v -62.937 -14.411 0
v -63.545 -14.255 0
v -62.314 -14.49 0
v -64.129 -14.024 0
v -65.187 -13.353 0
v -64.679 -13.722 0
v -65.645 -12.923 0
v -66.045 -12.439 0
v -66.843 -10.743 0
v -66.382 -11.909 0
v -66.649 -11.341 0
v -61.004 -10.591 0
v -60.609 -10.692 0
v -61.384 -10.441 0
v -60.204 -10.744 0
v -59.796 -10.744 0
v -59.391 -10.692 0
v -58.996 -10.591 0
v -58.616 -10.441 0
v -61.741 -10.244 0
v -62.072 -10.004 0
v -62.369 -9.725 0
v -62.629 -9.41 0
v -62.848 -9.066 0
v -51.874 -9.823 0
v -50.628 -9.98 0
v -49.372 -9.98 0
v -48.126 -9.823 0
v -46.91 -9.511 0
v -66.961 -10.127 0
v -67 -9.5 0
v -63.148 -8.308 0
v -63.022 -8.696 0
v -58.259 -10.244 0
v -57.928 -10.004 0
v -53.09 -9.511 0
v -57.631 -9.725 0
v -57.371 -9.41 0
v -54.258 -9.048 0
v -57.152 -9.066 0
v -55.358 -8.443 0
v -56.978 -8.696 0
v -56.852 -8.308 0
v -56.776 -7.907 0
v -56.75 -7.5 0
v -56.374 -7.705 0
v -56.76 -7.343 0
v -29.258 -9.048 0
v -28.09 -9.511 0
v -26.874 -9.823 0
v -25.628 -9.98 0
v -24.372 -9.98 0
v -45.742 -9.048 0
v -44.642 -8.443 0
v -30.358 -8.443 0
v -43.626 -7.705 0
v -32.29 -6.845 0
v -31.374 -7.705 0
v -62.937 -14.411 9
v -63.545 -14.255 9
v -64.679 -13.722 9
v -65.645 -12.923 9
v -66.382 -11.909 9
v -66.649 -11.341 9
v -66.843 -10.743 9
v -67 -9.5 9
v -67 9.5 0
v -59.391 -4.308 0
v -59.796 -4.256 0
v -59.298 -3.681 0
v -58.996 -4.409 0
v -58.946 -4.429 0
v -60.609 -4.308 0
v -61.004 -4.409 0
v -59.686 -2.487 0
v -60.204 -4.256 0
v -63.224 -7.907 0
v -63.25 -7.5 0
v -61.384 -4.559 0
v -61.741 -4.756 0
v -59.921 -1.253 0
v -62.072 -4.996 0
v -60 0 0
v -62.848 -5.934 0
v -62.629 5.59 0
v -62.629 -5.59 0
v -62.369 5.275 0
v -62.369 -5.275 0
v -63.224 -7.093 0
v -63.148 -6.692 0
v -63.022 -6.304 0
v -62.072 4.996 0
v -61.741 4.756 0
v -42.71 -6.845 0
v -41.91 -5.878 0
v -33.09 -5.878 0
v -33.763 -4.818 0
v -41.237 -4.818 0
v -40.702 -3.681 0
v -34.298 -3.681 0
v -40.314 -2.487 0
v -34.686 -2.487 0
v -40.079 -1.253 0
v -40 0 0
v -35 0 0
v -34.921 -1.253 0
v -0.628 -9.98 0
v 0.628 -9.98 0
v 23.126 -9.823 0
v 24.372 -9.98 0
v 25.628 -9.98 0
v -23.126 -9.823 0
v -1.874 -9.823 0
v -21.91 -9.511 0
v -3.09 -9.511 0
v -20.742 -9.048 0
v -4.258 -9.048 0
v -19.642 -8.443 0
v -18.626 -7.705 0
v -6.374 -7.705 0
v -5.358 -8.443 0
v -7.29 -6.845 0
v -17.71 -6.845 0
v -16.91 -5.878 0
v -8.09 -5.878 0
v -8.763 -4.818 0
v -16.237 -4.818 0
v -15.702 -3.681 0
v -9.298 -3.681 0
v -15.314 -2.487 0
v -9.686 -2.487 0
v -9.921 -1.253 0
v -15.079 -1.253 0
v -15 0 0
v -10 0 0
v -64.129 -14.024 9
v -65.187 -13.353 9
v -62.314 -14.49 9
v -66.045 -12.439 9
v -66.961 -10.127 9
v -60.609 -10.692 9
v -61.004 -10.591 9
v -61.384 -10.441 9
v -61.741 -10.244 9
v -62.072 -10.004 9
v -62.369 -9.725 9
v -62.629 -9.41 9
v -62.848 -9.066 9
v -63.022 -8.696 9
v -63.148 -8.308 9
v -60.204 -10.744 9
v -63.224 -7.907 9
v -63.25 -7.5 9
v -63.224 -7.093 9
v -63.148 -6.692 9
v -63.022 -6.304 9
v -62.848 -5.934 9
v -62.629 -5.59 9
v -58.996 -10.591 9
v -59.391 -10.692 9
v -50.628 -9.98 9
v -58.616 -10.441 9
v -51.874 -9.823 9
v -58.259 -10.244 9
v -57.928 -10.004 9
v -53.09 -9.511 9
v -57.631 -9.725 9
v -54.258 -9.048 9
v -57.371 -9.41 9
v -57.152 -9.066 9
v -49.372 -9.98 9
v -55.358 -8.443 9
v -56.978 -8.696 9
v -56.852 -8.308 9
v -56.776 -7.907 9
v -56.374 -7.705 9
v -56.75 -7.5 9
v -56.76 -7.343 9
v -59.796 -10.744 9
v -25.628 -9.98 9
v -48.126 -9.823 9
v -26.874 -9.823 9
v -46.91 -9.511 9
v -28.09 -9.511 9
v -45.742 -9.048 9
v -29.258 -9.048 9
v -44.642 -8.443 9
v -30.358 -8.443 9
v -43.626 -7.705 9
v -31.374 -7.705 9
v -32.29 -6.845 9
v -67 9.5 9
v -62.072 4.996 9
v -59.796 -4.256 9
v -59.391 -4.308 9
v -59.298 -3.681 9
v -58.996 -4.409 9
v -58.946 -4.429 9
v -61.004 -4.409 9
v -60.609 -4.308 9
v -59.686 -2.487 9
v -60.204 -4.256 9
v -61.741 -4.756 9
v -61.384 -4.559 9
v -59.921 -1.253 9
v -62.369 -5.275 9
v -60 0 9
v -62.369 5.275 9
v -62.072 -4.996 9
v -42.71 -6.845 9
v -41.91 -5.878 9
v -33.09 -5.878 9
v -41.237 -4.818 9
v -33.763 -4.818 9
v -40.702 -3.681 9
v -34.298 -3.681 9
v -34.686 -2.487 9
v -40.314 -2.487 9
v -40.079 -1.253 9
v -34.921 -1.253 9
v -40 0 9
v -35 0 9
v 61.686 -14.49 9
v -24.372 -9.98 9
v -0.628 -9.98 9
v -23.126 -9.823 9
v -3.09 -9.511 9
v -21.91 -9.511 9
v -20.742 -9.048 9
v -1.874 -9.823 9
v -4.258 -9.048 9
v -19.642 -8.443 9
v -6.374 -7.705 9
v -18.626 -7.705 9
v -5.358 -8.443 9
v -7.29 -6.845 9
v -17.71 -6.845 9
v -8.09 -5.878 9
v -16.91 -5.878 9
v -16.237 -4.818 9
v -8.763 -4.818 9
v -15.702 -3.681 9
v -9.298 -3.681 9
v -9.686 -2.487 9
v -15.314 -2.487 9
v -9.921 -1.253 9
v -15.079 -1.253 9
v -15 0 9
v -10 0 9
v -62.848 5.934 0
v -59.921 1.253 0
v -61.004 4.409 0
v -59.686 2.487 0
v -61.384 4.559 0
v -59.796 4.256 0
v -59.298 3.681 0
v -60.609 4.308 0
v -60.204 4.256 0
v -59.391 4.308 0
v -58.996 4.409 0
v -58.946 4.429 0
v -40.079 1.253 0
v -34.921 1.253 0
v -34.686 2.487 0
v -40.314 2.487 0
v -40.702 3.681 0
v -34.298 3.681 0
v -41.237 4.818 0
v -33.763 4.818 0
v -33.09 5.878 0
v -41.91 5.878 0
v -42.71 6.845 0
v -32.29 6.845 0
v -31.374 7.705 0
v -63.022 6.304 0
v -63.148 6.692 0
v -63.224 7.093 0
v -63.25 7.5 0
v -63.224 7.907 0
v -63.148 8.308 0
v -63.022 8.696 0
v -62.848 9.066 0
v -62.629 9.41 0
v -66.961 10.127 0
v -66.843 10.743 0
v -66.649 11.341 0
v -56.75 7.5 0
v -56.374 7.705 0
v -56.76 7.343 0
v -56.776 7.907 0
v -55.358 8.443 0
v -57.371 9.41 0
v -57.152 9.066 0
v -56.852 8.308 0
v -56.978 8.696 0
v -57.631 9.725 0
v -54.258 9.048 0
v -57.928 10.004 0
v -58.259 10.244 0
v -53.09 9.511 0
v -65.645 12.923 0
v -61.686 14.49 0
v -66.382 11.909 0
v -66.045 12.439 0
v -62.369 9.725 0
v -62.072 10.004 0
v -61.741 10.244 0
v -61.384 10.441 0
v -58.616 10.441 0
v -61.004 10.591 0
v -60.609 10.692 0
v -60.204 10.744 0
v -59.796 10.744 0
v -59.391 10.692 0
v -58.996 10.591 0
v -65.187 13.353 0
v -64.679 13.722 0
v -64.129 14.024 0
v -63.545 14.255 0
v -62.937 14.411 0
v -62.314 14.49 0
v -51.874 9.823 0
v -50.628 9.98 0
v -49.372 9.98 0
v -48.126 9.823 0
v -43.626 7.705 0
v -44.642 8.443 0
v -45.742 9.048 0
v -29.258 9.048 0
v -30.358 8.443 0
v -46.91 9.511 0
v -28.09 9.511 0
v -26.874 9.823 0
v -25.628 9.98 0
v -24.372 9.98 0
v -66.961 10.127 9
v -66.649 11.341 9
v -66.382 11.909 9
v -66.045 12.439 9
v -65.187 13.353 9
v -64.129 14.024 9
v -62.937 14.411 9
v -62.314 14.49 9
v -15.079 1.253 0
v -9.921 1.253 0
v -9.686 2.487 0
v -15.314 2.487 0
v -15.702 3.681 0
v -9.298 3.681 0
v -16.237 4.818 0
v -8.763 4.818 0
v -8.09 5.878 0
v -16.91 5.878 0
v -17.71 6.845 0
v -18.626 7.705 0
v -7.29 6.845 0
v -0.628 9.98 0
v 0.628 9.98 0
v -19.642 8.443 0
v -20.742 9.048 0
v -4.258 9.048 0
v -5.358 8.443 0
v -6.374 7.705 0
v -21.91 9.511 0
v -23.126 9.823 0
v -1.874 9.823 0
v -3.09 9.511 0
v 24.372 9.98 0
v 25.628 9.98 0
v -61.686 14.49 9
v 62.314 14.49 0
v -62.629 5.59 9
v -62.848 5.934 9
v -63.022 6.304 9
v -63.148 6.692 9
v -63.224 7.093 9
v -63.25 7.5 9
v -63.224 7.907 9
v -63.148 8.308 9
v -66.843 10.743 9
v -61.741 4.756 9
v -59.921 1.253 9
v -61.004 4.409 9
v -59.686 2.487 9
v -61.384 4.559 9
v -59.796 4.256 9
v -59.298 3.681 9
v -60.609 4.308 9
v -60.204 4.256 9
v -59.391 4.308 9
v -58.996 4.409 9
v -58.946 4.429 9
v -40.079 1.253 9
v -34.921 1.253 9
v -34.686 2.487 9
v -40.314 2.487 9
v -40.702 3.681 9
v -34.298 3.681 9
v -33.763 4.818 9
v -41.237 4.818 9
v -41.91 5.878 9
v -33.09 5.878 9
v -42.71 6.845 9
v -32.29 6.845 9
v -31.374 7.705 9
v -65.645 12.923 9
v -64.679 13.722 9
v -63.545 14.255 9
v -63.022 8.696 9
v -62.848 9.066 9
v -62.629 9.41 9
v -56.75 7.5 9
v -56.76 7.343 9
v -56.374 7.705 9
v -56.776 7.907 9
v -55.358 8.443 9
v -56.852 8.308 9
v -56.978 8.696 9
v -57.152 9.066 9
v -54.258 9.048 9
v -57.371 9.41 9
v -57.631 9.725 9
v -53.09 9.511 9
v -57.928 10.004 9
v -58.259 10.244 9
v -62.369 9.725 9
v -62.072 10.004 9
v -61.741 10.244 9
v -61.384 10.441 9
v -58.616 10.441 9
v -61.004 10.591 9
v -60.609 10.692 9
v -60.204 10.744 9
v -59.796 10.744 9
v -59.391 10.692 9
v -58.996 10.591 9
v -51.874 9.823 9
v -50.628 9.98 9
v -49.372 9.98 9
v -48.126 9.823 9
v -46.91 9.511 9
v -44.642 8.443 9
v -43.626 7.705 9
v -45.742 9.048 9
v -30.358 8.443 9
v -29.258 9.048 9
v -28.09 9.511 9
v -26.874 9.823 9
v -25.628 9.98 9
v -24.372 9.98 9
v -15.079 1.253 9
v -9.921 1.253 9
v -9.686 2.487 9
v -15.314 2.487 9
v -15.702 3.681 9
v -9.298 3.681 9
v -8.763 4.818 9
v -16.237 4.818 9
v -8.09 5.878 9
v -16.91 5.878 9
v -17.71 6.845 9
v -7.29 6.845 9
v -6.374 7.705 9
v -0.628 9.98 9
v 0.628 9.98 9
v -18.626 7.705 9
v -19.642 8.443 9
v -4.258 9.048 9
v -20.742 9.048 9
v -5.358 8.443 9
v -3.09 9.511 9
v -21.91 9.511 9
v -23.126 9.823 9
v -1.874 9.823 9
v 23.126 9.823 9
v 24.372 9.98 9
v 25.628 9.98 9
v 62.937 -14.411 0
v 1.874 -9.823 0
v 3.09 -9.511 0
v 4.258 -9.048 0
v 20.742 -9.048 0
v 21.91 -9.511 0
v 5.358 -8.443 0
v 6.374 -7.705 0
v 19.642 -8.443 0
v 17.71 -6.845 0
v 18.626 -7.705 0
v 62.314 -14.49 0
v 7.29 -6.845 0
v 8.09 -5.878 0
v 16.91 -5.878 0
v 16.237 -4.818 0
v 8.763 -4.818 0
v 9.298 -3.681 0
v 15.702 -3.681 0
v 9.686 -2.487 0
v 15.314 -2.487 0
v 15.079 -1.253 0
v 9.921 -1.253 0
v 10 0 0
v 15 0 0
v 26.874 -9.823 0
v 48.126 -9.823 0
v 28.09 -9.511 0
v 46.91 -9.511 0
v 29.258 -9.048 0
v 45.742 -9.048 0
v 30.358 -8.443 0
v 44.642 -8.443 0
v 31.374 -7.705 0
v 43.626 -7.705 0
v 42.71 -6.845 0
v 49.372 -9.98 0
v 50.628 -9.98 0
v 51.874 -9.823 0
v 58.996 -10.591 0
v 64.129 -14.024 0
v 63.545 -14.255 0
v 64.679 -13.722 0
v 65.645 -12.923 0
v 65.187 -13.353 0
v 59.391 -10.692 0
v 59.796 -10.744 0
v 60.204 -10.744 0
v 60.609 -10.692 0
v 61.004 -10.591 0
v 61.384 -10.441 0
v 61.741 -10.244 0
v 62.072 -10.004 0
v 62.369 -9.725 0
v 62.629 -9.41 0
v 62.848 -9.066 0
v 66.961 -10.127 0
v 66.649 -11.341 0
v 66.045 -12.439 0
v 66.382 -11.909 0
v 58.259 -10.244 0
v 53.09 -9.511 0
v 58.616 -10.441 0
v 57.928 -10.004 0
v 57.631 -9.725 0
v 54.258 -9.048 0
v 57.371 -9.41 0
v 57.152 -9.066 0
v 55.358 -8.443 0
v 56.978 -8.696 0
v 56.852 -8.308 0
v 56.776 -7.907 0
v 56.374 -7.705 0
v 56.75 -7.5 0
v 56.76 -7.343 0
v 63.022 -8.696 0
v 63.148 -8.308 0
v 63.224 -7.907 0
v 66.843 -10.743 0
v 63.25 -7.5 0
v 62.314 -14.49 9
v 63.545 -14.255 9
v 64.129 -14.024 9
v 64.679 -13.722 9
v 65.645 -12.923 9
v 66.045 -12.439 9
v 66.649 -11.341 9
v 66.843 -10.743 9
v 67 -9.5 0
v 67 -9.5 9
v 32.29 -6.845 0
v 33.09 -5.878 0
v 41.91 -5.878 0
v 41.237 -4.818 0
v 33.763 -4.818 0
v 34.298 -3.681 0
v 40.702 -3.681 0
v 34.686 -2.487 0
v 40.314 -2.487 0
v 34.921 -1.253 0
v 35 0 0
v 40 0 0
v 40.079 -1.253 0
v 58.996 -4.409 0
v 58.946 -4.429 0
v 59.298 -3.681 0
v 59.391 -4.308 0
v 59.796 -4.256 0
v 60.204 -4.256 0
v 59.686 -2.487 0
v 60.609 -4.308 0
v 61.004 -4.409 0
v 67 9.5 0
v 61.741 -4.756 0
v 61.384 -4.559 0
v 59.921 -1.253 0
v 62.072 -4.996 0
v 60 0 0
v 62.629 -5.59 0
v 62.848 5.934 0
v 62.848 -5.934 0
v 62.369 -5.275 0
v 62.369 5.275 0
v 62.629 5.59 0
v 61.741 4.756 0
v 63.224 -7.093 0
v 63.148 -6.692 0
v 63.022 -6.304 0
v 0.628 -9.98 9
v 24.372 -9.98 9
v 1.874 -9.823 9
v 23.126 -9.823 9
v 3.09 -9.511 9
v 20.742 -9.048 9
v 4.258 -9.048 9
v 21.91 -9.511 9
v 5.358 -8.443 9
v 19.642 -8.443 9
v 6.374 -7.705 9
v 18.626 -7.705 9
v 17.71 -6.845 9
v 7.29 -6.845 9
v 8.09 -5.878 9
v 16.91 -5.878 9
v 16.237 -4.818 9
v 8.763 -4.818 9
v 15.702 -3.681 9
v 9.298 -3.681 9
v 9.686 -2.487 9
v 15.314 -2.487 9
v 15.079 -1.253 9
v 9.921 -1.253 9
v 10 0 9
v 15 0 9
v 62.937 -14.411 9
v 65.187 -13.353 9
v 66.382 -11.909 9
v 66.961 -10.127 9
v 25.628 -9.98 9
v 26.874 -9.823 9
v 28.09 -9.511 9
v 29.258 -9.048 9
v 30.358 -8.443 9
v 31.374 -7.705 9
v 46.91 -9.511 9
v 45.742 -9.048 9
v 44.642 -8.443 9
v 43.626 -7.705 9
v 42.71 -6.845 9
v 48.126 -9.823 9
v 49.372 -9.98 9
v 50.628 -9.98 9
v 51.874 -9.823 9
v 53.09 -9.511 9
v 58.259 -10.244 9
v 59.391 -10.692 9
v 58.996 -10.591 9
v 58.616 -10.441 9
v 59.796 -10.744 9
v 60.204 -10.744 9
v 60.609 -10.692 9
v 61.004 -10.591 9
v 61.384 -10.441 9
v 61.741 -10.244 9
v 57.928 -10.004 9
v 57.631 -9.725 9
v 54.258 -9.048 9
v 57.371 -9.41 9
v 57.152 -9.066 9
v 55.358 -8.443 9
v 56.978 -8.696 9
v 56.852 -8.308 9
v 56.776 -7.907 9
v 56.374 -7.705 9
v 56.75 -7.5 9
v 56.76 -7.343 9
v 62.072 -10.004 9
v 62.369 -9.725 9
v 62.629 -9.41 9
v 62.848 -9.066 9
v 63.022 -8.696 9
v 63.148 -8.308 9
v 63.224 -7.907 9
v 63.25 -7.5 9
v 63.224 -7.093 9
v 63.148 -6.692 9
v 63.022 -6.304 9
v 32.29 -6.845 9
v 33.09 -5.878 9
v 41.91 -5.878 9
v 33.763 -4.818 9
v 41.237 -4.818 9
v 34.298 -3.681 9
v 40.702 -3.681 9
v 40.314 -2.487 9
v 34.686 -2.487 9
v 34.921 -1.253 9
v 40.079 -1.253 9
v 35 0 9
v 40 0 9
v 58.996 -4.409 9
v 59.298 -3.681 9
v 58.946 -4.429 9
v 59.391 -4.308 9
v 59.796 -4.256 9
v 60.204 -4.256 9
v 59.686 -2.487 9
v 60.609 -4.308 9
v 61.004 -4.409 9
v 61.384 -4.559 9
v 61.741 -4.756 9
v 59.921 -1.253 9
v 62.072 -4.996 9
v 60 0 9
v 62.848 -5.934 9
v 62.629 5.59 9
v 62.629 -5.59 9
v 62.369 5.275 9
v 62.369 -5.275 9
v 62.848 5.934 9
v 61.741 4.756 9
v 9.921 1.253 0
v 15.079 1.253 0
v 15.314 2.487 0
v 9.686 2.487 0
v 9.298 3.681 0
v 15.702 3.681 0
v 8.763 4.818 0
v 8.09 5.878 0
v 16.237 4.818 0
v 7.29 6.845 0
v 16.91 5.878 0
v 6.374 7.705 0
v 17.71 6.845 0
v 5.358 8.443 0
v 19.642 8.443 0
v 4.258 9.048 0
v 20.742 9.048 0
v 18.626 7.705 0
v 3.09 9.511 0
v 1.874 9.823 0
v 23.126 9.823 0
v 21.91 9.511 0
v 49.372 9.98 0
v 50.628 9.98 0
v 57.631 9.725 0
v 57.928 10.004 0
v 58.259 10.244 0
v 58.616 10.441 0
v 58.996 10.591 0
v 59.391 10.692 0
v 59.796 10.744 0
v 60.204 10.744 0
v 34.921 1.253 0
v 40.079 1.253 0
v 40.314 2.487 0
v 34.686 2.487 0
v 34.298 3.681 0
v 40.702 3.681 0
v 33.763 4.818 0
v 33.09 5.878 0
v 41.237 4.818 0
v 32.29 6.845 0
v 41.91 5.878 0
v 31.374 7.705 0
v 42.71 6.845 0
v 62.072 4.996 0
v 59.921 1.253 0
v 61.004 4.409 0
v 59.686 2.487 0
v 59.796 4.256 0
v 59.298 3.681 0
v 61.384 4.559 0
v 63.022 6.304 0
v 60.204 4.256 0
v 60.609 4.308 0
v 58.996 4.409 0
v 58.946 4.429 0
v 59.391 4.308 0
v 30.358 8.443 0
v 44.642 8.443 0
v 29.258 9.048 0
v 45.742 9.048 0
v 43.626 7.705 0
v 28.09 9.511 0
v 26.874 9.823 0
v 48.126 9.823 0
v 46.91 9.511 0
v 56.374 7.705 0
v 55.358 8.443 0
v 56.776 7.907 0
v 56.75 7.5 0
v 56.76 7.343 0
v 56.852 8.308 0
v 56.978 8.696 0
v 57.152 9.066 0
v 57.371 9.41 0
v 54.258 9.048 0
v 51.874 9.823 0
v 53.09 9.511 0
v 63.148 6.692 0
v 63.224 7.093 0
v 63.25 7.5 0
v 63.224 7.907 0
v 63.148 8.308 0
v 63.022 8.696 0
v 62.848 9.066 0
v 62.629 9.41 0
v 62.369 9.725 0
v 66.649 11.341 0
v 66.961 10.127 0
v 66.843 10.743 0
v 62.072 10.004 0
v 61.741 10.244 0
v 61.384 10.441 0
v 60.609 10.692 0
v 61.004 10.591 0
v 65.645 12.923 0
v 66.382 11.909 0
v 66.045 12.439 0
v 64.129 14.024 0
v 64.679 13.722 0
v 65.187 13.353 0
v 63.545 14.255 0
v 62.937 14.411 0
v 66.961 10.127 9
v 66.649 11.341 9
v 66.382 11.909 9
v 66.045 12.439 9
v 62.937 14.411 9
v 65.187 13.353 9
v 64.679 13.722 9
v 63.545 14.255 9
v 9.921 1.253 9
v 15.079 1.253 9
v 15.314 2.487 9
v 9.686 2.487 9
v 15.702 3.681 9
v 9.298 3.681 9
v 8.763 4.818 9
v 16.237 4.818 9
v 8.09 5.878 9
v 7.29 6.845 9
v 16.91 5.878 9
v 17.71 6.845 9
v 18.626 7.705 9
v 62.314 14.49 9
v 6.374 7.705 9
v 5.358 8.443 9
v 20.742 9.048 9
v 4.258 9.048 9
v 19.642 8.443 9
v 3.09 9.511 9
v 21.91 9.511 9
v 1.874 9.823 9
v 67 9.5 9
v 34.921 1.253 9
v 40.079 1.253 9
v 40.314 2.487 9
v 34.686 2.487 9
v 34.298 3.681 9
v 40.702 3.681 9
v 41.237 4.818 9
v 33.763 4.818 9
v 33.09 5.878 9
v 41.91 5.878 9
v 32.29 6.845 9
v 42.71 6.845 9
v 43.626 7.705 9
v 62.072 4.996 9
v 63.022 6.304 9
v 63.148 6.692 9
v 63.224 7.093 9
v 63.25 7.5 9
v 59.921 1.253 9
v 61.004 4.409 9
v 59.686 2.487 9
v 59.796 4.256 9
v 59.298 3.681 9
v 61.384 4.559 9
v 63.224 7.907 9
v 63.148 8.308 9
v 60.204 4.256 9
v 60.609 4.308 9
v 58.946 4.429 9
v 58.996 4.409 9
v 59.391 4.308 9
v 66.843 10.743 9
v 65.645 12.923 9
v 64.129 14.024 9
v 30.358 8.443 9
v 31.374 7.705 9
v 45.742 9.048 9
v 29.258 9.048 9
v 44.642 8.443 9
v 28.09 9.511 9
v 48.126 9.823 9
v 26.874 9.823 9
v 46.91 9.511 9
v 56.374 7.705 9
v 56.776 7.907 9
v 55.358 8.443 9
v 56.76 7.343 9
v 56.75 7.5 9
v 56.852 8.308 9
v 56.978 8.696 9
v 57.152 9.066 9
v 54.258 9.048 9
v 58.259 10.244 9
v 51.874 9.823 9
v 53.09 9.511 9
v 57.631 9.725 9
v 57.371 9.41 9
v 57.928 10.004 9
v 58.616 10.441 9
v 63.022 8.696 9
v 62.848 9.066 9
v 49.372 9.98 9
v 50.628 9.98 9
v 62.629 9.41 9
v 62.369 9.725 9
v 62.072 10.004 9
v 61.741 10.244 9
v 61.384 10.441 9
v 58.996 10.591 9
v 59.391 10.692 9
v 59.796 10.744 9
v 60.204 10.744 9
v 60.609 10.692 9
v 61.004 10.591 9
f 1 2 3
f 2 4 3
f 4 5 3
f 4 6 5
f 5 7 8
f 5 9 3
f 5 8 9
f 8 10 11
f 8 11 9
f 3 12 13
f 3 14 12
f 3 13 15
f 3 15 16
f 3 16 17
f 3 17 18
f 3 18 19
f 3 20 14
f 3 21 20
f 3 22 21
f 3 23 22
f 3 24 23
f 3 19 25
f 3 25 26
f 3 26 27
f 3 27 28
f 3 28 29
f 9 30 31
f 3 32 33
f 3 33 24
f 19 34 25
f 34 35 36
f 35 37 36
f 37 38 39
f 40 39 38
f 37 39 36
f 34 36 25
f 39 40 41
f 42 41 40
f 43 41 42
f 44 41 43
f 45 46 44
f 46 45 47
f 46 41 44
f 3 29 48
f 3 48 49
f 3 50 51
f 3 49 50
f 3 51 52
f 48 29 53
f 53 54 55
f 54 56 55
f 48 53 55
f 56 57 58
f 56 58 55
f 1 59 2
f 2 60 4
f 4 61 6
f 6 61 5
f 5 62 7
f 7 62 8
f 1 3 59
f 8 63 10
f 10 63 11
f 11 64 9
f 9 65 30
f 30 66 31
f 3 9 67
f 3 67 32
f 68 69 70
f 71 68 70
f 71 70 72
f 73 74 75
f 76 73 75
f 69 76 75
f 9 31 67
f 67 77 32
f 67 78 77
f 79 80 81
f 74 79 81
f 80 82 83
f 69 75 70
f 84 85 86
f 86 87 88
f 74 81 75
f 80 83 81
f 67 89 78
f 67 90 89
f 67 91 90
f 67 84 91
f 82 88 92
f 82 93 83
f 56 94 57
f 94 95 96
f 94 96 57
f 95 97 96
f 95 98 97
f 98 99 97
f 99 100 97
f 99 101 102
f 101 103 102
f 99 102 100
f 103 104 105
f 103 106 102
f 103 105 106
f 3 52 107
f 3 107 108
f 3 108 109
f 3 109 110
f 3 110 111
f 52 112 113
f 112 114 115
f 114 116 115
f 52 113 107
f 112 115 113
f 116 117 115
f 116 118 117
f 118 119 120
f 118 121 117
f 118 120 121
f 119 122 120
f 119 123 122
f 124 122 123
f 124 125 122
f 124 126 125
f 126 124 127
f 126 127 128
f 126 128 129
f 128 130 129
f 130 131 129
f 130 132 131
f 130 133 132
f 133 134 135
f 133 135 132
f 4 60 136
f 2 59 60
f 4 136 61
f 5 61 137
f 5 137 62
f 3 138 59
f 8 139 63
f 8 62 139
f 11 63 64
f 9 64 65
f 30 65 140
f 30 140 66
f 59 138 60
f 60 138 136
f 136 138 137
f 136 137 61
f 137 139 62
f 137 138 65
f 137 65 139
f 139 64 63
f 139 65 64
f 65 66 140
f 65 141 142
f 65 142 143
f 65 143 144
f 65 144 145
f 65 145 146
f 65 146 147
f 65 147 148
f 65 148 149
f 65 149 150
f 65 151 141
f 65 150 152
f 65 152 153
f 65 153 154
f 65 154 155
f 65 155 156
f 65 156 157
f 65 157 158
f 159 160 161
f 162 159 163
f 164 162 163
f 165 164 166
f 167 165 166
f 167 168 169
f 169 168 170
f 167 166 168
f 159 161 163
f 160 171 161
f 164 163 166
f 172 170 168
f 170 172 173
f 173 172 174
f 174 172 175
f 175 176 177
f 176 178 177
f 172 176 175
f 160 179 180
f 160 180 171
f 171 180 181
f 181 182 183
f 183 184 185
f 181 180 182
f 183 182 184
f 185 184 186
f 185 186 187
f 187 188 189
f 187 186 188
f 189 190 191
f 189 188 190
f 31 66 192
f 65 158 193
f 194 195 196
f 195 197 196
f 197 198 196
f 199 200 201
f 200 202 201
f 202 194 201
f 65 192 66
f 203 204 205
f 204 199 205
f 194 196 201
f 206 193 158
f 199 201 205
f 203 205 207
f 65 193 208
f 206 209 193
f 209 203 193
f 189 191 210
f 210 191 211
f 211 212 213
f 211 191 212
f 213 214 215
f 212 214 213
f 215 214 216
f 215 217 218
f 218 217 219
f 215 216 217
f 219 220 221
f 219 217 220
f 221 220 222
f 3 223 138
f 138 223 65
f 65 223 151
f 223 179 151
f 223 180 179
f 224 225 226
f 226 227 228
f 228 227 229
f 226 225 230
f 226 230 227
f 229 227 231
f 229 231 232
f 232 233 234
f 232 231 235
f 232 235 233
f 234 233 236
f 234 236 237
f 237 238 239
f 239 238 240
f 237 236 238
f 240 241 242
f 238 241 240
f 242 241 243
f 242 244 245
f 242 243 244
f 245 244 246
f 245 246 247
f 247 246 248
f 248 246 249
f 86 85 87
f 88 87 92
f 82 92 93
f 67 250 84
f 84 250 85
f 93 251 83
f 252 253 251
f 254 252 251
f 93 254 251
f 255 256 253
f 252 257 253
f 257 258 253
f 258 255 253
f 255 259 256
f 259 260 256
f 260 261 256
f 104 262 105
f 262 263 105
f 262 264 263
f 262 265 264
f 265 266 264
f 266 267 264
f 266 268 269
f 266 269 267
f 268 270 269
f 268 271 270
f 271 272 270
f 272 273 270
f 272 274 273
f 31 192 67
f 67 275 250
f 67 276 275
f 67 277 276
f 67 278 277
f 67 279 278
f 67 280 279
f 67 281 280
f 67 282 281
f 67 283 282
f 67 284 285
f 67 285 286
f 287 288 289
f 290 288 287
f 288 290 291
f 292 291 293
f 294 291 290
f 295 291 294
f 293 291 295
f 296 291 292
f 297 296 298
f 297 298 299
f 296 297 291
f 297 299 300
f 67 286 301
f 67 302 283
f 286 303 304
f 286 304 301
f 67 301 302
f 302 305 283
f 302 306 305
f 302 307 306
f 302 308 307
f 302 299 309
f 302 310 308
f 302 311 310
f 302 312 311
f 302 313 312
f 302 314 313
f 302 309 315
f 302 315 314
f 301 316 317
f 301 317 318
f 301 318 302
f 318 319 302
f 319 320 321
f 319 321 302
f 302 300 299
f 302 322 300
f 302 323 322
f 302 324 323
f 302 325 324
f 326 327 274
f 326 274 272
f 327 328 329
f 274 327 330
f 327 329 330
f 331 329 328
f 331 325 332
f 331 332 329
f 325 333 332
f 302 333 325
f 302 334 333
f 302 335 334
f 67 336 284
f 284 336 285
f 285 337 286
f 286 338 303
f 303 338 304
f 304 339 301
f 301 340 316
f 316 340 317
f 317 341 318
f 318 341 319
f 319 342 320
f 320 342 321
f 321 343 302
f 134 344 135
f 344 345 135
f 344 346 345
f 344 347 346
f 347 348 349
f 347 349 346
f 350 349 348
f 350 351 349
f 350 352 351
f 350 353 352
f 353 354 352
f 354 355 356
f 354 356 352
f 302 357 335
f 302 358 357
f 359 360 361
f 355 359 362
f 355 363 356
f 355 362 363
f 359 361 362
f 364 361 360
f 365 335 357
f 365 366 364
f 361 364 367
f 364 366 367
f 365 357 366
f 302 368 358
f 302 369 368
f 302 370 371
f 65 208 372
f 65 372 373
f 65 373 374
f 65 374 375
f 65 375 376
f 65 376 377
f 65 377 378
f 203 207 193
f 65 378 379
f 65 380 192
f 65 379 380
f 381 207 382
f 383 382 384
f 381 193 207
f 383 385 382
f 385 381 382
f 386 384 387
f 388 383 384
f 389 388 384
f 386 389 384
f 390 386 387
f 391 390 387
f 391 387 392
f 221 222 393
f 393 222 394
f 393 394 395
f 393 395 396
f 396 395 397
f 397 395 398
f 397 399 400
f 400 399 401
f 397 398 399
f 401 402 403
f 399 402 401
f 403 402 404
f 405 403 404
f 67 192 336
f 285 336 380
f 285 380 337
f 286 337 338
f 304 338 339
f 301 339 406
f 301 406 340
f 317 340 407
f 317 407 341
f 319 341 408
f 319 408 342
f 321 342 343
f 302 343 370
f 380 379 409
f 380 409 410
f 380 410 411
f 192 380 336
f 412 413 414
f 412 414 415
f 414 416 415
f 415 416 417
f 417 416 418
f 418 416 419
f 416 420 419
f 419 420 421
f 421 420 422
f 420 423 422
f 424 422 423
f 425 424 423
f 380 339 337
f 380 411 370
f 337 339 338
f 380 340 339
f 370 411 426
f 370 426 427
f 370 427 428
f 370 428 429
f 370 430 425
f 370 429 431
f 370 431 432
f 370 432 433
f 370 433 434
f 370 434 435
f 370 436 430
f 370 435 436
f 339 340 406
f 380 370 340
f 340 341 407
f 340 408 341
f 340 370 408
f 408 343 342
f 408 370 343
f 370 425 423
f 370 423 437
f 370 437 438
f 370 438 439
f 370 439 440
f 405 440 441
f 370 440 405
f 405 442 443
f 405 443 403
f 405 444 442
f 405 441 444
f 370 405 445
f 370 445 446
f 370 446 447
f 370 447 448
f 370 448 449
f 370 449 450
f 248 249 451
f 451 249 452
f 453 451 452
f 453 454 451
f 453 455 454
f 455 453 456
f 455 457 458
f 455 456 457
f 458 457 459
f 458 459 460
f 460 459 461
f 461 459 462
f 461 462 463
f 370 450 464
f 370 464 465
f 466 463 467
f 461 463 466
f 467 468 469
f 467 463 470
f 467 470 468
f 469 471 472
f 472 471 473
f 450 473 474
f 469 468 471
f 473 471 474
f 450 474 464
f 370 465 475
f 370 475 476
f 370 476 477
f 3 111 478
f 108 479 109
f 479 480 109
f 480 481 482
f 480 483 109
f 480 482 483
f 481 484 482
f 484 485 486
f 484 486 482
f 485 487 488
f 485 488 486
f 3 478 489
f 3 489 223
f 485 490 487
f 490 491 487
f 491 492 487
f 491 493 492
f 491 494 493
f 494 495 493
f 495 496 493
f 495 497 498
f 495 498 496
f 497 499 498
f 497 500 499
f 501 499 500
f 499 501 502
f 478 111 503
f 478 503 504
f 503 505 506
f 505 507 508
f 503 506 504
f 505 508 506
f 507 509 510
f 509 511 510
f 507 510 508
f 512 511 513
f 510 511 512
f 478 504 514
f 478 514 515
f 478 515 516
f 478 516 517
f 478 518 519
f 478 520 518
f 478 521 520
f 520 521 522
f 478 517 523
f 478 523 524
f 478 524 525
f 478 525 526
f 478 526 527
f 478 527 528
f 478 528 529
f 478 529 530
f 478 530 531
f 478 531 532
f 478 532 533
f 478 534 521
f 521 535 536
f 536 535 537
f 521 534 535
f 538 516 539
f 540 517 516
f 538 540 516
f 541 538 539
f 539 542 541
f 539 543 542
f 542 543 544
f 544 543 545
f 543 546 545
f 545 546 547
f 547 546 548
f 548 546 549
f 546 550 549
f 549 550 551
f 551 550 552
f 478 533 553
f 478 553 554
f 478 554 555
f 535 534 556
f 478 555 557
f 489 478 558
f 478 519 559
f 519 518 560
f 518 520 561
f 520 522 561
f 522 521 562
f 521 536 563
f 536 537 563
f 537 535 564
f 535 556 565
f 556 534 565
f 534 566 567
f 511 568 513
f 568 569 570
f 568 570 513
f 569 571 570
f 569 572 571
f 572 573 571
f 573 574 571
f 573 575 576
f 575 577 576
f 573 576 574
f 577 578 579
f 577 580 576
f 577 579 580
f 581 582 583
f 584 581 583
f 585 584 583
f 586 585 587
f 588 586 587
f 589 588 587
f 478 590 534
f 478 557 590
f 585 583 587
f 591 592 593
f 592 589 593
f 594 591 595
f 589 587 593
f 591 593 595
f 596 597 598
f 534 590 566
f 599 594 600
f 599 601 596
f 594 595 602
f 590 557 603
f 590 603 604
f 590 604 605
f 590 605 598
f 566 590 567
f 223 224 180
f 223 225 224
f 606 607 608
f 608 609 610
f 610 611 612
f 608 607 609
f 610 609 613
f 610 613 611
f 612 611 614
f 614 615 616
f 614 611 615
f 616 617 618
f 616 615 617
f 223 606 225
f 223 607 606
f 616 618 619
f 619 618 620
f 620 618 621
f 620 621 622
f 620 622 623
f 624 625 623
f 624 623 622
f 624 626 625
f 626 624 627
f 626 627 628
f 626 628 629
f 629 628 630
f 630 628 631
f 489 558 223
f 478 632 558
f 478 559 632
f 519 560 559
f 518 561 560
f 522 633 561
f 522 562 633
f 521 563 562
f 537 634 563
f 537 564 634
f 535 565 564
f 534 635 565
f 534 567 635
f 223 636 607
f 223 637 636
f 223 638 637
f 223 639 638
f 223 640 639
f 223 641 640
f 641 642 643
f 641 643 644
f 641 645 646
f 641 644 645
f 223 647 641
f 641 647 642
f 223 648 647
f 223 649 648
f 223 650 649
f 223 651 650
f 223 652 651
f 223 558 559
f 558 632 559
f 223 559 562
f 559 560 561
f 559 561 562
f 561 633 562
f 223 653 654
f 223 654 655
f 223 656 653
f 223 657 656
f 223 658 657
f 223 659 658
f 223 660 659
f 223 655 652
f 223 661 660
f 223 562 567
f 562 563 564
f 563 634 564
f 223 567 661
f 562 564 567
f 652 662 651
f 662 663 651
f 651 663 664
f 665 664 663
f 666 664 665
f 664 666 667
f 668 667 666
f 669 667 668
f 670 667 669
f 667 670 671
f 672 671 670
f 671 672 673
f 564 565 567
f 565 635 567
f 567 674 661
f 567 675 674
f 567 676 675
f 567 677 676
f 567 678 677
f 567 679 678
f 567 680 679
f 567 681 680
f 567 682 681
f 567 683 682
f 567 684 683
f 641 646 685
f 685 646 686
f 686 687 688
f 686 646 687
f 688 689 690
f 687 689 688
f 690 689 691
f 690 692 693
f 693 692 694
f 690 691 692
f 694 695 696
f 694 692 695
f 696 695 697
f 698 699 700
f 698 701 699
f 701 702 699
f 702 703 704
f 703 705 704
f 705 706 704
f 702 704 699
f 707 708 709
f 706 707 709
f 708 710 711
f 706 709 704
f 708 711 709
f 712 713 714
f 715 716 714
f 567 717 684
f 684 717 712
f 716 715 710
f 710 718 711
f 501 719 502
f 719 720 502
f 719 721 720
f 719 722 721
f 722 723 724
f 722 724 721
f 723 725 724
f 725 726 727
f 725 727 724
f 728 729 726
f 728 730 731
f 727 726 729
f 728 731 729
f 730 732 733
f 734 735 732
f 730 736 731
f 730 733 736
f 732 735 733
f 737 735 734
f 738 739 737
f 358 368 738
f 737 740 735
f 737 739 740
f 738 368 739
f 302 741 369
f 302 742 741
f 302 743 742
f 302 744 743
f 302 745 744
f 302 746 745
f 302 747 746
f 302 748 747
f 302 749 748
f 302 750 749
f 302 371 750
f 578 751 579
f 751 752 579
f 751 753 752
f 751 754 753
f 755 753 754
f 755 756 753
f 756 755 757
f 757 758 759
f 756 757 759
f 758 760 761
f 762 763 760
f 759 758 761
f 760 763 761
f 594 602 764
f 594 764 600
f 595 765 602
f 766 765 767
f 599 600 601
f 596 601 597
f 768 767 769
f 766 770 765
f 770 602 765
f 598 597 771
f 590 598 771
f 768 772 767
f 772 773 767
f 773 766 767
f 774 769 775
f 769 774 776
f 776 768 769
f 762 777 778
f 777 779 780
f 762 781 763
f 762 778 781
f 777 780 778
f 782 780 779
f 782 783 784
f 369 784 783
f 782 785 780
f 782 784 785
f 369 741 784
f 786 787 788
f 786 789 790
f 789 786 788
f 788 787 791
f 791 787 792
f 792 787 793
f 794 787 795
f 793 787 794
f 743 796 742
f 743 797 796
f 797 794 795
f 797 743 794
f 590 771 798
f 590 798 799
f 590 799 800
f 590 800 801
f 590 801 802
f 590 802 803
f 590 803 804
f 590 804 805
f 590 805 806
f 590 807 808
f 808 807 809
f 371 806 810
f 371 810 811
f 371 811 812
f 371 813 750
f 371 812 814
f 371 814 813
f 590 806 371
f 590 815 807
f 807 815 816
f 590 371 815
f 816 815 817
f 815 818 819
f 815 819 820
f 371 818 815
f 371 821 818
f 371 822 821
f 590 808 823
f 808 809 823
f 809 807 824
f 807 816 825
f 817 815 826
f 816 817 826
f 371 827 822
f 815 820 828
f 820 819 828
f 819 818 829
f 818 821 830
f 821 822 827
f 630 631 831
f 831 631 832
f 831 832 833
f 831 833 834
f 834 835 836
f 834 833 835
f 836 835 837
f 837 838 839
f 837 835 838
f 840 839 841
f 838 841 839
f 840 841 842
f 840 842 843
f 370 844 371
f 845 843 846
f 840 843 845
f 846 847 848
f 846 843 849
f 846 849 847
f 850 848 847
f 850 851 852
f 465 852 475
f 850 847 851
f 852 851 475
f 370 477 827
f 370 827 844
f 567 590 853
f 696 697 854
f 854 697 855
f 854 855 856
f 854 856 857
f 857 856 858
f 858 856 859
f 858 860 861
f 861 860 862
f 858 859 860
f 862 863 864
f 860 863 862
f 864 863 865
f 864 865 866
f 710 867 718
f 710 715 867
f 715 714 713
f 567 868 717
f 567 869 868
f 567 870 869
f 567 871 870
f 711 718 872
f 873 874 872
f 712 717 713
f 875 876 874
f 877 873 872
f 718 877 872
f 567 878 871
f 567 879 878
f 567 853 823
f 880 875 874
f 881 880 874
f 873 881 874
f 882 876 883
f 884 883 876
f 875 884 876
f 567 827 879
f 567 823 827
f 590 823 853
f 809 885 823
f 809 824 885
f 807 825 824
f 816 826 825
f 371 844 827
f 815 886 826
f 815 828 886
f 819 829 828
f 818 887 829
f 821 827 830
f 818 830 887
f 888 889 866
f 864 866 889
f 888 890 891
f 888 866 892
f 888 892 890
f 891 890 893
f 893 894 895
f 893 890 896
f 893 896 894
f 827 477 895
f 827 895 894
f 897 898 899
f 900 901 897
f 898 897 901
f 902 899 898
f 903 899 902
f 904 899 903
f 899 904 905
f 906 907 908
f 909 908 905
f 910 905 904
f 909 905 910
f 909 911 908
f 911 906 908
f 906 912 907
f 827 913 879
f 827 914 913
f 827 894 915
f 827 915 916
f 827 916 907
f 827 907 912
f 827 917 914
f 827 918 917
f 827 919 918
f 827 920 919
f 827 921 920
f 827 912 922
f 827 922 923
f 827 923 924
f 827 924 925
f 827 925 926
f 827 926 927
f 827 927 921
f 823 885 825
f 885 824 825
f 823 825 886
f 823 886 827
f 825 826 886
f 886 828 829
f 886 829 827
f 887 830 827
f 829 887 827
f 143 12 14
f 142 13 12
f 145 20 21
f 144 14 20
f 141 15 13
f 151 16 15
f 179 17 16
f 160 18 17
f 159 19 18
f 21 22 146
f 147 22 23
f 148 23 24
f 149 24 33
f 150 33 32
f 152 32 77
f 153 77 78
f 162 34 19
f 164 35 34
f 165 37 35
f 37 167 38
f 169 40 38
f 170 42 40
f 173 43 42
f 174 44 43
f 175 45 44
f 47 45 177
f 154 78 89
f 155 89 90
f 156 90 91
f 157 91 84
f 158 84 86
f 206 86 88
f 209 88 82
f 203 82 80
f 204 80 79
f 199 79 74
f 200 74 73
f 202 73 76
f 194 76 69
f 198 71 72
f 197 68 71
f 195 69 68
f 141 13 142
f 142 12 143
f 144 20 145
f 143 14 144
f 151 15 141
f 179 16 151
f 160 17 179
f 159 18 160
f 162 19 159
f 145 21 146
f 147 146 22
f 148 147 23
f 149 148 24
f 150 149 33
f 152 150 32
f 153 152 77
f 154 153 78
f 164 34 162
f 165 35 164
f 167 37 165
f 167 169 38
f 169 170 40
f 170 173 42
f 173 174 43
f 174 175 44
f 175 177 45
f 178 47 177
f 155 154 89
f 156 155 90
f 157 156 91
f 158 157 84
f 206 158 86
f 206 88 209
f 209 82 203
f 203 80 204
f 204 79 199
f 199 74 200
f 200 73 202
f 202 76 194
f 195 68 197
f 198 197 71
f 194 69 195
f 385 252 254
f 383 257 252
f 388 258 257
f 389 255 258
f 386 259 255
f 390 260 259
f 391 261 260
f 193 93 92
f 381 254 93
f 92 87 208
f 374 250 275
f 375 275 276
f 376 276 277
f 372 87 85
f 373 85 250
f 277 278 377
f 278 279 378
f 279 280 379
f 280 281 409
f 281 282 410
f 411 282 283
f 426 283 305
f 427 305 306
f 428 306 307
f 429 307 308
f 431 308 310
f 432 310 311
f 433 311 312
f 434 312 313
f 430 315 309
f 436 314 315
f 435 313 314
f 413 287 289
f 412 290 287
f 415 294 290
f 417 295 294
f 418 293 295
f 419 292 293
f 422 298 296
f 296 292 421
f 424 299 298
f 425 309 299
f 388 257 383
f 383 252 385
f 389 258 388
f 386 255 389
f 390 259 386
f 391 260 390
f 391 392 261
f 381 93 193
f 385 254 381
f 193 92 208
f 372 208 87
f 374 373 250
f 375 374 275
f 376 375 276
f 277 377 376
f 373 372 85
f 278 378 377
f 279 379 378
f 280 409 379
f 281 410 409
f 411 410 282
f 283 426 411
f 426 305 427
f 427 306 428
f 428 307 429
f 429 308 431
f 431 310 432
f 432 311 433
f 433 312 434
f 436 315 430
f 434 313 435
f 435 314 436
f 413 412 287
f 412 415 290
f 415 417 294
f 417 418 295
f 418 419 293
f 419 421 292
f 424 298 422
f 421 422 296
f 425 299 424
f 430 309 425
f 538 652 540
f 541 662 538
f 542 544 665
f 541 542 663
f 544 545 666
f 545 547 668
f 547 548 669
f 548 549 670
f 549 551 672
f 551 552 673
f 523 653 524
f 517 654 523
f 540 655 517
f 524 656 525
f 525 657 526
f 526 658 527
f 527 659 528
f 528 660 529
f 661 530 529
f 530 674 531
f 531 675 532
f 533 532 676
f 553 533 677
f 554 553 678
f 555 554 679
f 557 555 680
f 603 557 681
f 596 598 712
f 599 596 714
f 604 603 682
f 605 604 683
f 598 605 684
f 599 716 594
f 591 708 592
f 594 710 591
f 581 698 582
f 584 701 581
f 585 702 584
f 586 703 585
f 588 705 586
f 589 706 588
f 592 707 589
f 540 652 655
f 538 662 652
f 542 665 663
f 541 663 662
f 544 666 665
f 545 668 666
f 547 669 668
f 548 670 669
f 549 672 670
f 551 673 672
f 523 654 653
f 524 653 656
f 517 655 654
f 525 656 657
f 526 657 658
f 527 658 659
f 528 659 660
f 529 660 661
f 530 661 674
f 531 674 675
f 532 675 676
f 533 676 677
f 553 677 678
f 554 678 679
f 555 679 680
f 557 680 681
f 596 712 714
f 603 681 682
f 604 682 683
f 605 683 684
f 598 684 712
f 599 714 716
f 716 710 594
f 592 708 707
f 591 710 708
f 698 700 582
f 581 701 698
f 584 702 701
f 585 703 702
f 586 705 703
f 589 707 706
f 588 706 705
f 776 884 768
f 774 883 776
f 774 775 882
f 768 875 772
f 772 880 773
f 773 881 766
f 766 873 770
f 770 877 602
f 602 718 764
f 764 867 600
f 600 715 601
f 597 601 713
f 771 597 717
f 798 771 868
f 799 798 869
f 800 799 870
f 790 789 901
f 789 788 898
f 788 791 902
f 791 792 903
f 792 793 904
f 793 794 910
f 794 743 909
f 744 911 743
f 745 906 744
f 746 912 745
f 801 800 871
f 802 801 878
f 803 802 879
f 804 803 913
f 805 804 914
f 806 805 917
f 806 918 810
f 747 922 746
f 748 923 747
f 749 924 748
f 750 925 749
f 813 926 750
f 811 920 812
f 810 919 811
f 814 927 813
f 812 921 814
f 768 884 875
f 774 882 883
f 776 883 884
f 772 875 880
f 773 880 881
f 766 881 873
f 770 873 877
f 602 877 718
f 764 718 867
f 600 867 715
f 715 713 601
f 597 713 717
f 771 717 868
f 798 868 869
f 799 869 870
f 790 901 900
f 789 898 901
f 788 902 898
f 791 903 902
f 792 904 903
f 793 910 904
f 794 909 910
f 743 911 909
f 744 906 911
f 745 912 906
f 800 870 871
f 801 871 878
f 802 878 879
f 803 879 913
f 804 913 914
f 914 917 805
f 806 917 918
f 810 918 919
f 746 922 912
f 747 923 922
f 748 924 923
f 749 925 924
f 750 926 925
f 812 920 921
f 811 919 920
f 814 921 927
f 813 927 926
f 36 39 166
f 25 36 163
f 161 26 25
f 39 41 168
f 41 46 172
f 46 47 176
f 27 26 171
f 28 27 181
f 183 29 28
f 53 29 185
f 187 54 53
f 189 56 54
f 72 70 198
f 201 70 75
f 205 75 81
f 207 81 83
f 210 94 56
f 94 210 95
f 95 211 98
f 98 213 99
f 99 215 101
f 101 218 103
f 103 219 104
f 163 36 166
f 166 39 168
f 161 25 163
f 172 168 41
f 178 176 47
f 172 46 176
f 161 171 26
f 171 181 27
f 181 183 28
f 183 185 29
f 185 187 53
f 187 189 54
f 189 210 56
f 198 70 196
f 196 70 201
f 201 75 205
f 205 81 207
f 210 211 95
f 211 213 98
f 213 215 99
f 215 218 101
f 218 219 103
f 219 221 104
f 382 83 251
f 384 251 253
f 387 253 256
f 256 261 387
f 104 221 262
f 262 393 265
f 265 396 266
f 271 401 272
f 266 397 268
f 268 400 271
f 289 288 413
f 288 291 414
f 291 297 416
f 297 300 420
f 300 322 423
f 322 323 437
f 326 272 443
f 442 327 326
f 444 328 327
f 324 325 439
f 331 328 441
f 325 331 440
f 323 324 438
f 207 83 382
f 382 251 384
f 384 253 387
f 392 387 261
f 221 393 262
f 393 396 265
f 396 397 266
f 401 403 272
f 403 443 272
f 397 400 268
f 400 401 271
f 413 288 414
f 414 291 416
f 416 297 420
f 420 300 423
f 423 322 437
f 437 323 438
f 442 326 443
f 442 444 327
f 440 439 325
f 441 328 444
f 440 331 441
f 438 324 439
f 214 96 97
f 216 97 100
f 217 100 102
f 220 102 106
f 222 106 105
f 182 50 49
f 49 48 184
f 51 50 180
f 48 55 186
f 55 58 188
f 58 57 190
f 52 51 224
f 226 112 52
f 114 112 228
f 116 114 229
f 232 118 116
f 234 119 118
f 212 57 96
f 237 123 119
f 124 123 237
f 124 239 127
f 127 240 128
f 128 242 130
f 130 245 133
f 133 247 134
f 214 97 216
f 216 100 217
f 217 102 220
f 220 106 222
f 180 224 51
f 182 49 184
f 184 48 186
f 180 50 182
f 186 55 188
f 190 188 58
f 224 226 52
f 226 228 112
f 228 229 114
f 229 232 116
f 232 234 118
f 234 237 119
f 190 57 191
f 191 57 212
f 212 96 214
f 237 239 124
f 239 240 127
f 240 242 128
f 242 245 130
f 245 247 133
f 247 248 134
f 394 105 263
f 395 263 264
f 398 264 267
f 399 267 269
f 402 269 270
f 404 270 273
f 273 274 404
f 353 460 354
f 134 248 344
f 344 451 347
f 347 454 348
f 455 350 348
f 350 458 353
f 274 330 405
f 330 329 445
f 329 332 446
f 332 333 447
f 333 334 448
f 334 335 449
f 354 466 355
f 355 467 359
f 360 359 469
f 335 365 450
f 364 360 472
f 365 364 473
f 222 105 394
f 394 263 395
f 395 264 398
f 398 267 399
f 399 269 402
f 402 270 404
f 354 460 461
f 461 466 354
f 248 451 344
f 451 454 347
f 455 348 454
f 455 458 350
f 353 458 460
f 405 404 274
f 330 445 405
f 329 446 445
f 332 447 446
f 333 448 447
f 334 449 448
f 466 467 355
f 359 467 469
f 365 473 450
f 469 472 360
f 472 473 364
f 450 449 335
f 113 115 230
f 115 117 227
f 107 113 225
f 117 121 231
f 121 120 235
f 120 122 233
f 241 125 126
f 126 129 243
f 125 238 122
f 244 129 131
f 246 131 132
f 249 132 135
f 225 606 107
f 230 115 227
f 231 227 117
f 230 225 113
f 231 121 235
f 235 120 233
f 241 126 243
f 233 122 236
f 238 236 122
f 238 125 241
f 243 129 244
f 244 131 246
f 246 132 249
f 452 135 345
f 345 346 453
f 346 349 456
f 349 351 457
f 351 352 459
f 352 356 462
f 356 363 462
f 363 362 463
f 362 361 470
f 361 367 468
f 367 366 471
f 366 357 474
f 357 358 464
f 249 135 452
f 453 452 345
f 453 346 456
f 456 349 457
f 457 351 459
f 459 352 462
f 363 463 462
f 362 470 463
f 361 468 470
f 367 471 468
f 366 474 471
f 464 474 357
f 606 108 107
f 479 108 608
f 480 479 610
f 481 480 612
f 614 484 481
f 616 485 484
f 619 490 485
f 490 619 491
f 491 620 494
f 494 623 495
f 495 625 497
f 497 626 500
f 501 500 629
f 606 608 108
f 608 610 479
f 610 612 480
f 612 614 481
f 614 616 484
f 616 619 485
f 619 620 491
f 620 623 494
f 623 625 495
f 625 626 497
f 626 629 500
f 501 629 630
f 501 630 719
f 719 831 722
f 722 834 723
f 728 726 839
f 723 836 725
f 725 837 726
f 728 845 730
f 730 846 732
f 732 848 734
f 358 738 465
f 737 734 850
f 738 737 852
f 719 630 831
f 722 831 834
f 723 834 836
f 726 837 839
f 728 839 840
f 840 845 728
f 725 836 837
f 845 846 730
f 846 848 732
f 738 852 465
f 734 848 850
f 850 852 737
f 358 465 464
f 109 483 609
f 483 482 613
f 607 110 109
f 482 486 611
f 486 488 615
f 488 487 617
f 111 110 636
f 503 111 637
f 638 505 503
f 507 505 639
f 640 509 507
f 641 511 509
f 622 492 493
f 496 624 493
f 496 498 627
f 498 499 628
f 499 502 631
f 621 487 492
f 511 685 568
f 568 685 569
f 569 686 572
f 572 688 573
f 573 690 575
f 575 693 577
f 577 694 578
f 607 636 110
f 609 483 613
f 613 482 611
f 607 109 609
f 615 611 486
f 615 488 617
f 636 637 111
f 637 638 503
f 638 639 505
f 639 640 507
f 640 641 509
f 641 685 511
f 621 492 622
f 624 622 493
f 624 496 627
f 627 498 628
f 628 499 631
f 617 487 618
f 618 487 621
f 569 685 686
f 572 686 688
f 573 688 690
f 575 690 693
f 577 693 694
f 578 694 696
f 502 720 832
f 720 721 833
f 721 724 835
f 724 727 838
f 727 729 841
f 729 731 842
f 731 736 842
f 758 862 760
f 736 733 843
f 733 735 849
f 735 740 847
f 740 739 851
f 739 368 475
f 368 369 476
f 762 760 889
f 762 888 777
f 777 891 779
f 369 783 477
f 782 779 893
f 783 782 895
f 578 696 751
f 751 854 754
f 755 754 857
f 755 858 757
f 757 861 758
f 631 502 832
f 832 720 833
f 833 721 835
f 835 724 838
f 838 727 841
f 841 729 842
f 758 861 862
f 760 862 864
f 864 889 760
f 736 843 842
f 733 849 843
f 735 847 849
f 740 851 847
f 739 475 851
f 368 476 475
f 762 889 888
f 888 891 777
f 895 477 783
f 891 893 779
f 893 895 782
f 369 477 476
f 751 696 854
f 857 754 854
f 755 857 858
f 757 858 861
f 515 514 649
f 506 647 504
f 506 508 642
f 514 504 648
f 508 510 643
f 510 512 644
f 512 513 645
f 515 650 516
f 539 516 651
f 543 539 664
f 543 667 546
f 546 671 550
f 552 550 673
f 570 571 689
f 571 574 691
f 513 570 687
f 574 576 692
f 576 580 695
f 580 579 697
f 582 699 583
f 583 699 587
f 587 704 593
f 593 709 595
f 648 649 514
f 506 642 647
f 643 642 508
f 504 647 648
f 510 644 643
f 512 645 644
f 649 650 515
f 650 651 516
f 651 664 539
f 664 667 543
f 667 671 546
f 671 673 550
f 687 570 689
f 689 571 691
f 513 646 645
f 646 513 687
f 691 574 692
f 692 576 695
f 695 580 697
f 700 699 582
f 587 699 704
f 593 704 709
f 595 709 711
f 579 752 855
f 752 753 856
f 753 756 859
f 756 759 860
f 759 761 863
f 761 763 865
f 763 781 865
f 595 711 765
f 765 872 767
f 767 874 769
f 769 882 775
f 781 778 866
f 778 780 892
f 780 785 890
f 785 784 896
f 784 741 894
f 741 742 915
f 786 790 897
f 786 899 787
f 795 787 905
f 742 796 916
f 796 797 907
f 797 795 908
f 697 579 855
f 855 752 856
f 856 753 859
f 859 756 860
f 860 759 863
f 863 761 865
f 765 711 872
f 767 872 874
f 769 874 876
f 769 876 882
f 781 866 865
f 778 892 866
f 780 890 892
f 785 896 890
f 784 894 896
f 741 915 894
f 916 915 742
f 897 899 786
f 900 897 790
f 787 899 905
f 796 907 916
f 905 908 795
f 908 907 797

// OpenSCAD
$fn = 50;

difference() {
	union() {
		hull() {
			translate(v = [-62.0, 9.5, 0]) {
				cylinder(h = 9, r = 5);
			}
			translate(v = [62.0, 9.5, 0]) {
				cylinder(h = 9, r = 5);
			}
			translate(v = [-62.0, -9.5, 0]) {
				cylinder(h = 9, r = 5);
			}
			translate(v = [62.0, -9.5, 0]) {
				cylinder(h = 9, r = 5);
			}
		}
	}
	union() {
		translate(v = [-60.0, -7.5, -100.0]) {
			cylinder(h = 200, r = 3.25);
		}
		translate(v = [-60.0, 7.5, -100.0]) {
			cylinder(h = 200, r = 3.25);
		}
		translate(v = [60.0, -7.5, -100.0]) {
			cylinder(h = 200, r = 3.25);
		}
		translate(v = [60.0, 7.5, -100.0]) {
			cylinder(h = 200, r = 3.25);
		}
		translate(v = [-60.0, -7.5, -100.0]) {
			cylinder(h = 200, r = 1.8);
		}
		translate(v = [-60.0, 7.5, -100.0]) {
			cylinder(h = 200, r = 1.8);
		}
		translate(v = [60.0, -7.5, -100.0]) {
			cylinder(h = 200, r = 1.8);
		}
		translate(v = [60.0, 7.5, -100.0]) {
			cylinder(h = 200, r = 1.8);
		}
		translate(v = [-50.0, 0, 0.0]) {
			cylinder(h = 9, r = 10.0);
		}
		translate(v = [-25.0, 0, 0.0]) {
			cylinder(h = 9, r = 10.0);
		}
		cylinder(h = 9, r = 10.0);
		translate(v = [25.0, 0, 0.0]) {
			cylinder(h = 9, r = 10.0);
		}
		translate(v = [50.0, 0, 0.0]) {
			cylinder(h = 9, r = 10.0);
		}
	}
}
